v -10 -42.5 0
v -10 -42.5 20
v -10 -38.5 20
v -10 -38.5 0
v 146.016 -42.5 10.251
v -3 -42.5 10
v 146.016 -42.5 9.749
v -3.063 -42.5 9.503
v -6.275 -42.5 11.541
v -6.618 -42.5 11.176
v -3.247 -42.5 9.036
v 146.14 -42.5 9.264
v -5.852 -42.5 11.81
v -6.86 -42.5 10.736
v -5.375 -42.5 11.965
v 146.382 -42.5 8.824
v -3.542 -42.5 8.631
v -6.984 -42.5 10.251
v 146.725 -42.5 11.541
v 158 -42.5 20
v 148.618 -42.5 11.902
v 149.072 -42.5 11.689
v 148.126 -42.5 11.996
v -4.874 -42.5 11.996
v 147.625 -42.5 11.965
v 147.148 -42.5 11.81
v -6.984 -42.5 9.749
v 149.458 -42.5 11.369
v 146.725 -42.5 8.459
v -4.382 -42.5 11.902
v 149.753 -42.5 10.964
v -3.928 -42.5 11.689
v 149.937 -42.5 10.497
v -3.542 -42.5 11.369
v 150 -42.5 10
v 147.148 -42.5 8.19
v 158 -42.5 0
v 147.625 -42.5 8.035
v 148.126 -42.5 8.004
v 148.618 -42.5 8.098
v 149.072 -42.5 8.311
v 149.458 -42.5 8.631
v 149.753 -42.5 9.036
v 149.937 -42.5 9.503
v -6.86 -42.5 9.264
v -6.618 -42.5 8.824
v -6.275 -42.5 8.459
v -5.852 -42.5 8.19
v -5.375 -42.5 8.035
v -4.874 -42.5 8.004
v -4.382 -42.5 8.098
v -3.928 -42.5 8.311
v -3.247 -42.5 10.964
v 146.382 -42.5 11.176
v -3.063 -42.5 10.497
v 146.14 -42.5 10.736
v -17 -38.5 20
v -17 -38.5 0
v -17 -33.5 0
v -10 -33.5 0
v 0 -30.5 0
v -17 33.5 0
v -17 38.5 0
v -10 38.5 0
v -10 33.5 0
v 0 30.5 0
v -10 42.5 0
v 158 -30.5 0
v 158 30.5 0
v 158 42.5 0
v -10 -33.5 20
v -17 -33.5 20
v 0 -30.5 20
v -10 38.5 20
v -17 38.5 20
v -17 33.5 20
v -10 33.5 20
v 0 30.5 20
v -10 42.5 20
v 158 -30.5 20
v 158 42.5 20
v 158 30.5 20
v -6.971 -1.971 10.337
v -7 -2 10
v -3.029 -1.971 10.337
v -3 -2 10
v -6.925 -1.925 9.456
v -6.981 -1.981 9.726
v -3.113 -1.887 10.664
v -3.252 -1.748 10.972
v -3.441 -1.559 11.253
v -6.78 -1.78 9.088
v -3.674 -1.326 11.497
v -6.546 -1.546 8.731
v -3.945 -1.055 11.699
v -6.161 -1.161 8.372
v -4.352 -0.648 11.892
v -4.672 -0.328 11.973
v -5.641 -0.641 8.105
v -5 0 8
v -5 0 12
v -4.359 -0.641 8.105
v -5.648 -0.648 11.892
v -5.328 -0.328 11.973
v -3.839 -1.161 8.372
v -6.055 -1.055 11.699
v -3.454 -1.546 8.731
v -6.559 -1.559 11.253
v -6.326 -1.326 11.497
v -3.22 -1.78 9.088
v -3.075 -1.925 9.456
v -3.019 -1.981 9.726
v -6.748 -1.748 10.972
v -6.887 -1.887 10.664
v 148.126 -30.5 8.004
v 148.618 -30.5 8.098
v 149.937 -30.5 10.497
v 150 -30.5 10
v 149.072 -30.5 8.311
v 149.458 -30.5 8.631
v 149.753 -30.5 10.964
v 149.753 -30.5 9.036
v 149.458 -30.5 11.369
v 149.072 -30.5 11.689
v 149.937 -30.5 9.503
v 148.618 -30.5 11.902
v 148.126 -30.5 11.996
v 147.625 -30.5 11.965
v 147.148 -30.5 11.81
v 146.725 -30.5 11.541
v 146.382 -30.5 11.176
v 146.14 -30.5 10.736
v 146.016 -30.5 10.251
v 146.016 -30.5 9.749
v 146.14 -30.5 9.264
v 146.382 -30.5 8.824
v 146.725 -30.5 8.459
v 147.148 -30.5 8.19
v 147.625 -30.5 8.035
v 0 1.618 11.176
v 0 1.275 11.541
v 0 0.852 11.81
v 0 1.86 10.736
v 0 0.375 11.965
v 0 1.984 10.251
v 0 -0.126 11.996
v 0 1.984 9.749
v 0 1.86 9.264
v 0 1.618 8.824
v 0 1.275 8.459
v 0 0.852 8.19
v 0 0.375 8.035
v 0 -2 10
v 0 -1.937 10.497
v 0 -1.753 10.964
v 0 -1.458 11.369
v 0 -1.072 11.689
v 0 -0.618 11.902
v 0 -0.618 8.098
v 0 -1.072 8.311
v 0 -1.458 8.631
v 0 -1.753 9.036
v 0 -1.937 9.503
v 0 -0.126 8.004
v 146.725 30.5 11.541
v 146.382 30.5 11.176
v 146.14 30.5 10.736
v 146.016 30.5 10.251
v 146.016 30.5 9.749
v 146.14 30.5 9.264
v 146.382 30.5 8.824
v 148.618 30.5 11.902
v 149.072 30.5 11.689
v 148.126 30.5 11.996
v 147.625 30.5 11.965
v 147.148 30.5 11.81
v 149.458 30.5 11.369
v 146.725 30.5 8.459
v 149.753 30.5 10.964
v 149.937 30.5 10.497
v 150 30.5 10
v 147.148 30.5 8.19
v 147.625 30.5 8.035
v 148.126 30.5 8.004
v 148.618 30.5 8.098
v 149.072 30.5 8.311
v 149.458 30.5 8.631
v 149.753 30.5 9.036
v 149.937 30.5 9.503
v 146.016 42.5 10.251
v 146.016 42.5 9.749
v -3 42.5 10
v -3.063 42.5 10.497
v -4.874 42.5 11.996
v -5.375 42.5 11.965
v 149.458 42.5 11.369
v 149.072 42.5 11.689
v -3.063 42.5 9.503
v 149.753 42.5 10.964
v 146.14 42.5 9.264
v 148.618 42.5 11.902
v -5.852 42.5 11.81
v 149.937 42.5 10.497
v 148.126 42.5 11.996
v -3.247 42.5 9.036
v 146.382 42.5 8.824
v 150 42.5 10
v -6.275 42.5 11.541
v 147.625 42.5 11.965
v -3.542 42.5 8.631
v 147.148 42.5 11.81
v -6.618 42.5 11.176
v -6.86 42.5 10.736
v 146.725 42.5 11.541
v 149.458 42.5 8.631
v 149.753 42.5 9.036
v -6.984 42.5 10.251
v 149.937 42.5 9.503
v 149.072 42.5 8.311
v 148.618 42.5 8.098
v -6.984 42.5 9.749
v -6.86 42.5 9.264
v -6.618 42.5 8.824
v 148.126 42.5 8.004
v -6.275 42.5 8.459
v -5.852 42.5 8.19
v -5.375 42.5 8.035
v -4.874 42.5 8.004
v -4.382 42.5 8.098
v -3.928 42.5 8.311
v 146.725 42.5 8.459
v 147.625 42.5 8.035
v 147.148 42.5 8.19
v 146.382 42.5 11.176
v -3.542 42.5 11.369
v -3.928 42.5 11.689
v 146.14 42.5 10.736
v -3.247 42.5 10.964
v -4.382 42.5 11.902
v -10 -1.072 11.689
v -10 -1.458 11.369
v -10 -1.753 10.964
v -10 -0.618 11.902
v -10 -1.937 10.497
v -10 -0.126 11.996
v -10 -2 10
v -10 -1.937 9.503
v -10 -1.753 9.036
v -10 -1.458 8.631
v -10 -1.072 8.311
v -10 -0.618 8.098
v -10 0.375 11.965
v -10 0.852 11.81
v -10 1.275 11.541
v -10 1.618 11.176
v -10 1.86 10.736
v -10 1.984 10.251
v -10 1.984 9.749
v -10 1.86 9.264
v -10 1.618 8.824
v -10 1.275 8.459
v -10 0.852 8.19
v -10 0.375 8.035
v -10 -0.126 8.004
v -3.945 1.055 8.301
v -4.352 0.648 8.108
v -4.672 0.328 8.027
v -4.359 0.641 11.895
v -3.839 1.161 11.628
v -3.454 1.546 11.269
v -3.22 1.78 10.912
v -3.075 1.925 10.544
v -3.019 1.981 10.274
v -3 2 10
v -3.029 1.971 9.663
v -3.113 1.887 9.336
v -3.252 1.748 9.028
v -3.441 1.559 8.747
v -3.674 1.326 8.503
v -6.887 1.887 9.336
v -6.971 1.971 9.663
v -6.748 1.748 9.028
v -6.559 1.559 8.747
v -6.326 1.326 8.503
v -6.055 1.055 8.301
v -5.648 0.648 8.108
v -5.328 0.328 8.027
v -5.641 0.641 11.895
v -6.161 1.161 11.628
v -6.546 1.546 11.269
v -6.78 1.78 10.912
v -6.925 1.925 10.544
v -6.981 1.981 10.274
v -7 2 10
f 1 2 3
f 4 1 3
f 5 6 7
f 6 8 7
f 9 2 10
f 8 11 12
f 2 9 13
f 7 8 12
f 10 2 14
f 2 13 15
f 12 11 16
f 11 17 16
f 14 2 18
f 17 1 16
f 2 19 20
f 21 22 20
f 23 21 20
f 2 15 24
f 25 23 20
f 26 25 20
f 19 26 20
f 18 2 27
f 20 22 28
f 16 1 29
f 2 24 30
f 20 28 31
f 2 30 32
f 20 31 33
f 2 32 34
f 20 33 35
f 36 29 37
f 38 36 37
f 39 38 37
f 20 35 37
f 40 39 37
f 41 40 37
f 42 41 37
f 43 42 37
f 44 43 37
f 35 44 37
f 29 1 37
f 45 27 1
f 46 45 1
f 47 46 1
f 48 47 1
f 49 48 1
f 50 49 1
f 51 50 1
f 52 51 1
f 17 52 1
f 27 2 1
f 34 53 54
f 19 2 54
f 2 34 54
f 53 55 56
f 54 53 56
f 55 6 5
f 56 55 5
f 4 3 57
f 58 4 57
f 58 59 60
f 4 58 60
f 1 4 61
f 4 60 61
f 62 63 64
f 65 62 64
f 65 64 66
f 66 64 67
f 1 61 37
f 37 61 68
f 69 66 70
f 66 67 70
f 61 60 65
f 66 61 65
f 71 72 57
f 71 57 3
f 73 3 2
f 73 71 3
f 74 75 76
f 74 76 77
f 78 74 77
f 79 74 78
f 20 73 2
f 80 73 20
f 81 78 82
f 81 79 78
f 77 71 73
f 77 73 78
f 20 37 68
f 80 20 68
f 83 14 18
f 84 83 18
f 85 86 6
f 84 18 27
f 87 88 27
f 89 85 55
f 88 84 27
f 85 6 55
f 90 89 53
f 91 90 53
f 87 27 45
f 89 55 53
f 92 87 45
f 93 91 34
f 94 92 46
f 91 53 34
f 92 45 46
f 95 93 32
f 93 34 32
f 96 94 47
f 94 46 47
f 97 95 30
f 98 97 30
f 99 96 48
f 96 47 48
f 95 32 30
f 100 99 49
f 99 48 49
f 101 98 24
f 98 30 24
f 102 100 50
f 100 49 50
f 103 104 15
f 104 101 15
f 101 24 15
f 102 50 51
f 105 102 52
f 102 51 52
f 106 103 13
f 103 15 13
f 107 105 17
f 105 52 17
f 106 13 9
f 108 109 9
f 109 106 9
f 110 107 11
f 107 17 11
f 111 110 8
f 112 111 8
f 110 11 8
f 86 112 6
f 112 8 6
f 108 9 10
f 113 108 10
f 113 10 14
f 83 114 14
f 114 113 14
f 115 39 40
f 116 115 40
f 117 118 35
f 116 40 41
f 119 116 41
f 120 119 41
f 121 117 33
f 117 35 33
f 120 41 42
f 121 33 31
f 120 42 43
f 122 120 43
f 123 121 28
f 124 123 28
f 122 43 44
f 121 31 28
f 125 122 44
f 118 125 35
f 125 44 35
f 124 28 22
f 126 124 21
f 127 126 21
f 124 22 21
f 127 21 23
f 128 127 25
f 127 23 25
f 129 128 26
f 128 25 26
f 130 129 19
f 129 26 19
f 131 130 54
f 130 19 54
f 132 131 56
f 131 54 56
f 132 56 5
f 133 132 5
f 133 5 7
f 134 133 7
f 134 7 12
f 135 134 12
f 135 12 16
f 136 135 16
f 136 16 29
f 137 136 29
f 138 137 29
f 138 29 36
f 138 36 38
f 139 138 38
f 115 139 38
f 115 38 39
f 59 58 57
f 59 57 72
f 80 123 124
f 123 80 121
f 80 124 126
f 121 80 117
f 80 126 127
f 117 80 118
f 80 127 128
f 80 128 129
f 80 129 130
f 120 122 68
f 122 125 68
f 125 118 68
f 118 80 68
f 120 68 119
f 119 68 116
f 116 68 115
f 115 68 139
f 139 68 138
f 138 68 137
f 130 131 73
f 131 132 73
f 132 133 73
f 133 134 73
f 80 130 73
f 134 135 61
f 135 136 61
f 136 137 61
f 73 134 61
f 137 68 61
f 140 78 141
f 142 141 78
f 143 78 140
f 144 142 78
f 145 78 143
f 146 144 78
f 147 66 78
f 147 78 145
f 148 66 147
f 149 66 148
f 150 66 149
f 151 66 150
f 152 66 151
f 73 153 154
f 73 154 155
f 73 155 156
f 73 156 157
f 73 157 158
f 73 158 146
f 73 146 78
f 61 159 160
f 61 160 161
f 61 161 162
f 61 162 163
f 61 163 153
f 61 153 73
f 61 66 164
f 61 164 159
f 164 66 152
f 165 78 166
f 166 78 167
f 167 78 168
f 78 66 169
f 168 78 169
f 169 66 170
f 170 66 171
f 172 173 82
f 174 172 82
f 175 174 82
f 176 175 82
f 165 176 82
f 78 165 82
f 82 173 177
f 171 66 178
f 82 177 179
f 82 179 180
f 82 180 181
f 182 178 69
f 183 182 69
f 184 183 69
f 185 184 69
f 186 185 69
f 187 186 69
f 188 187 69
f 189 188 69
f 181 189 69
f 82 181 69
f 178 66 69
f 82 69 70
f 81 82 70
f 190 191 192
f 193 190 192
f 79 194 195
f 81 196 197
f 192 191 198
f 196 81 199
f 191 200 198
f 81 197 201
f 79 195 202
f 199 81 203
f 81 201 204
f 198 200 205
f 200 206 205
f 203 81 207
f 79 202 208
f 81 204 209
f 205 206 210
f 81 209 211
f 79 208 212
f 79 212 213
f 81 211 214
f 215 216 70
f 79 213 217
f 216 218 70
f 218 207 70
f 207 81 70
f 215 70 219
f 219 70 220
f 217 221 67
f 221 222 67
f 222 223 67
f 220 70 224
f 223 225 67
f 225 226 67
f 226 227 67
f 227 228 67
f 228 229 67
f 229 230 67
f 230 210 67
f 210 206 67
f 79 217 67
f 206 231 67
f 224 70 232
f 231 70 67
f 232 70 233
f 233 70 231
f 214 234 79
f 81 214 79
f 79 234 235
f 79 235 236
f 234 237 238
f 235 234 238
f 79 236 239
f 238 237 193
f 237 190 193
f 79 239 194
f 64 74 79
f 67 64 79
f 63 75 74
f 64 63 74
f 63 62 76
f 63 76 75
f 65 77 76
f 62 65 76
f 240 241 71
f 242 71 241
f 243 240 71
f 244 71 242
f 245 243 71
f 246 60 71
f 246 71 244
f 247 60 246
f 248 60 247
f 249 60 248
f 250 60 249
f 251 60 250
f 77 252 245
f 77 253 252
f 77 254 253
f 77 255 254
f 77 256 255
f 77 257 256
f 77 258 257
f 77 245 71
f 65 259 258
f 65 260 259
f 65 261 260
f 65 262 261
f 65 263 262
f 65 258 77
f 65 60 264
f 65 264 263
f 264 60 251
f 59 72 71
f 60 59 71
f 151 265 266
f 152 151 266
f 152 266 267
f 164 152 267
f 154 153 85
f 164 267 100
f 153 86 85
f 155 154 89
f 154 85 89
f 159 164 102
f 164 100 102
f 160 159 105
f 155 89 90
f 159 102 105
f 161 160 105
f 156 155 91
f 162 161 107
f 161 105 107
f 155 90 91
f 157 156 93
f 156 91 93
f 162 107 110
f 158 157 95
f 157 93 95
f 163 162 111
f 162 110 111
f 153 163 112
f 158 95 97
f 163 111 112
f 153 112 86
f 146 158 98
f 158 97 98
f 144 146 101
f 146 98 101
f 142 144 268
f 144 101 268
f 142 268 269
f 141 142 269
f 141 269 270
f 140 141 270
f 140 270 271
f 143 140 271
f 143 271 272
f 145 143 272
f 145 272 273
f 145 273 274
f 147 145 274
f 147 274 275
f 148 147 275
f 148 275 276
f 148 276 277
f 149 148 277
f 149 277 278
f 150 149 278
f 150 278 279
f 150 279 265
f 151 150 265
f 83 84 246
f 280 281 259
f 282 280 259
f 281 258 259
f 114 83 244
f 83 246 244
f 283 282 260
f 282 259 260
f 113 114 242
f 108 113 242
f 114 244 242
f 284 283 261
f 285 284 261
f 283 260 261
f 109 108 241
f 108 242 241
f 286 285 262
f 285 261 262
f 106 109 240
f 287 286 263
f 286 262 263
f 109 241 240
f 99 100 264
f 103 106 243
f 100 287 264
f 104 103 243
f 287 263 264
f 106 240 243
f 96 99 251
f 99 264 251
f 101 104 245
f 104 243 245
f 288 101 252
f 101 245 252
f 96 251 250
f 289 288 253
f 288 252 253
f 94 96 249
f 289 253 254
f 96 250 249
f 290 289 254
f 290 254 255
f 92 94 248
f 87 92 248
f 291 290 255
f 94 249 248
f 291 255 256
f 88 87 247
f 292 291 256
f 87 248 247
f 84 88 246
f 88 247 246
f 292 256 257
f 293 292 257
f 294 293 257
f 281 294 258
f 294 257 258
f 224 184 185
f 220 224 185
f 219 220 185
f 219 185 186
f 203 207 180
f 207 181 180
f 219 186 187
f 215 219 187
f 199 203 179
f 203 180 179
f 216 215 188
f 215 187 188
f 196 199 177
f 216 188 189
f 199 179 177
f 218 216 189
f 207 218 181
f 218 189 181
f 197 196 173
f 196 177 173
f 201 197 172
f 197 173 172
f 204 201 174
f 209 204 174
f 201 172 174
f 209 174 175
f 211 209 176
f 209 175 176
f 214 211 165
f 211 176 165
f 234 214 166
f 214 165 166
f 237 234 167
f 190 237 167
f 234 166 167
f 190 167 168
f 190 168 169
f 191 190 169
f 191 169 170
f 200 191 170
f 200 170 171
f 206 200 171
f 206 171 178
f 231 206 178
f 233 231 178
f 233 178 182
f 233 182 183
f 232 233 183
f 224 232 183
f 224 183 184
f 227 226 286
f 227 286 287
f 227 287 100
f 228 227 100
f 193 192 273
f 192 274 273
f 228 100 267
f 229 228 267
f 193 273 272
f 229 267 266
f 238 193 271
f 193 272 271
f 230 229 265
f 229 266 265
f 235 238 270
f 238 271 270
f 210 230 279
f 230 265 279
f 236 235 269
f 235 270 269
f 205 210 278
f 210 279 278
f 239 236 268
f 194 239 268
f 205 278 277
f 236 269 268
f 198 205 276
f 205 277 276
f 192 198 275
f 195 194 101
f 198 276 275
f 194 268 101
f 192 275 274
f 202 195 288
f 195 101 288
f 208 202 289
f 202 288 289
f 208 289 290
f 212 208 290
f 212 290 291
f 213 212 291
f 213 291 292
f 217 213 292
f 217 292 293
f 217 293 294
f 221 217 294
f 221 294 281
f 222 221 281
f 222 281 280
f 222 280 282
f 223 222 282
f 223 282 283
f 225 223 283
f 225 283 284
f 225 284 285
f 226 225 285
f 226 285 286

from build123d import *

# Parameters (mm, degrees)
PAD_DEPTH       = 20
SKETCH004_R     = 2
POCKET002_DEPTH = 168.001
SKETCH005_R     = 2
POCKET003_DEPTH = 85.001


with BuildPart() as part:
    # Sketch → Pad (new body)
    with BuildSketch(Plane.XY):
        Polygon((-10, -42.5), (158, -42.5), (158, -30.5), (0, -30.5), (0, 30.5), (158, 30.5), (158, 42.5), (-10, 42.5), (-10, 38.5), (-17, 38.5), (-17, 33.5), (-10, 33.5), (-10, -33.5), (-17, -33.5), (-17, -38.5), (-10, -38.5), align=None)
    extrude(amount=PAD_DEPTH)

    # Sketch004 → Pocket002 (cut, through all)
    with BuildSketch(Plane(origin=(-10, 0, 0), x_dir=(0, -1, 0), z_dir=(-1, 0, 0))):
        with Locations((0, 10)):
            Circle(SKETCH004_R)
    extrude(amount=-POCKET002_DEPTH, mode=Mode.SUBTRACT)

    # Sketch005 → Pocket003 (cut, through all)
    with BuildSketch(Plane.XZ.offset(42.5)):
        with Locations((-5, 10)):
            Circle(SKETCH005_R)
        with Locations((148, 10)):
            Circle(SKETCH005_R)
    extrude(amount=-POCKET003_DEPTH, mode=Mode.SUBTRACT)


solid = part.part
